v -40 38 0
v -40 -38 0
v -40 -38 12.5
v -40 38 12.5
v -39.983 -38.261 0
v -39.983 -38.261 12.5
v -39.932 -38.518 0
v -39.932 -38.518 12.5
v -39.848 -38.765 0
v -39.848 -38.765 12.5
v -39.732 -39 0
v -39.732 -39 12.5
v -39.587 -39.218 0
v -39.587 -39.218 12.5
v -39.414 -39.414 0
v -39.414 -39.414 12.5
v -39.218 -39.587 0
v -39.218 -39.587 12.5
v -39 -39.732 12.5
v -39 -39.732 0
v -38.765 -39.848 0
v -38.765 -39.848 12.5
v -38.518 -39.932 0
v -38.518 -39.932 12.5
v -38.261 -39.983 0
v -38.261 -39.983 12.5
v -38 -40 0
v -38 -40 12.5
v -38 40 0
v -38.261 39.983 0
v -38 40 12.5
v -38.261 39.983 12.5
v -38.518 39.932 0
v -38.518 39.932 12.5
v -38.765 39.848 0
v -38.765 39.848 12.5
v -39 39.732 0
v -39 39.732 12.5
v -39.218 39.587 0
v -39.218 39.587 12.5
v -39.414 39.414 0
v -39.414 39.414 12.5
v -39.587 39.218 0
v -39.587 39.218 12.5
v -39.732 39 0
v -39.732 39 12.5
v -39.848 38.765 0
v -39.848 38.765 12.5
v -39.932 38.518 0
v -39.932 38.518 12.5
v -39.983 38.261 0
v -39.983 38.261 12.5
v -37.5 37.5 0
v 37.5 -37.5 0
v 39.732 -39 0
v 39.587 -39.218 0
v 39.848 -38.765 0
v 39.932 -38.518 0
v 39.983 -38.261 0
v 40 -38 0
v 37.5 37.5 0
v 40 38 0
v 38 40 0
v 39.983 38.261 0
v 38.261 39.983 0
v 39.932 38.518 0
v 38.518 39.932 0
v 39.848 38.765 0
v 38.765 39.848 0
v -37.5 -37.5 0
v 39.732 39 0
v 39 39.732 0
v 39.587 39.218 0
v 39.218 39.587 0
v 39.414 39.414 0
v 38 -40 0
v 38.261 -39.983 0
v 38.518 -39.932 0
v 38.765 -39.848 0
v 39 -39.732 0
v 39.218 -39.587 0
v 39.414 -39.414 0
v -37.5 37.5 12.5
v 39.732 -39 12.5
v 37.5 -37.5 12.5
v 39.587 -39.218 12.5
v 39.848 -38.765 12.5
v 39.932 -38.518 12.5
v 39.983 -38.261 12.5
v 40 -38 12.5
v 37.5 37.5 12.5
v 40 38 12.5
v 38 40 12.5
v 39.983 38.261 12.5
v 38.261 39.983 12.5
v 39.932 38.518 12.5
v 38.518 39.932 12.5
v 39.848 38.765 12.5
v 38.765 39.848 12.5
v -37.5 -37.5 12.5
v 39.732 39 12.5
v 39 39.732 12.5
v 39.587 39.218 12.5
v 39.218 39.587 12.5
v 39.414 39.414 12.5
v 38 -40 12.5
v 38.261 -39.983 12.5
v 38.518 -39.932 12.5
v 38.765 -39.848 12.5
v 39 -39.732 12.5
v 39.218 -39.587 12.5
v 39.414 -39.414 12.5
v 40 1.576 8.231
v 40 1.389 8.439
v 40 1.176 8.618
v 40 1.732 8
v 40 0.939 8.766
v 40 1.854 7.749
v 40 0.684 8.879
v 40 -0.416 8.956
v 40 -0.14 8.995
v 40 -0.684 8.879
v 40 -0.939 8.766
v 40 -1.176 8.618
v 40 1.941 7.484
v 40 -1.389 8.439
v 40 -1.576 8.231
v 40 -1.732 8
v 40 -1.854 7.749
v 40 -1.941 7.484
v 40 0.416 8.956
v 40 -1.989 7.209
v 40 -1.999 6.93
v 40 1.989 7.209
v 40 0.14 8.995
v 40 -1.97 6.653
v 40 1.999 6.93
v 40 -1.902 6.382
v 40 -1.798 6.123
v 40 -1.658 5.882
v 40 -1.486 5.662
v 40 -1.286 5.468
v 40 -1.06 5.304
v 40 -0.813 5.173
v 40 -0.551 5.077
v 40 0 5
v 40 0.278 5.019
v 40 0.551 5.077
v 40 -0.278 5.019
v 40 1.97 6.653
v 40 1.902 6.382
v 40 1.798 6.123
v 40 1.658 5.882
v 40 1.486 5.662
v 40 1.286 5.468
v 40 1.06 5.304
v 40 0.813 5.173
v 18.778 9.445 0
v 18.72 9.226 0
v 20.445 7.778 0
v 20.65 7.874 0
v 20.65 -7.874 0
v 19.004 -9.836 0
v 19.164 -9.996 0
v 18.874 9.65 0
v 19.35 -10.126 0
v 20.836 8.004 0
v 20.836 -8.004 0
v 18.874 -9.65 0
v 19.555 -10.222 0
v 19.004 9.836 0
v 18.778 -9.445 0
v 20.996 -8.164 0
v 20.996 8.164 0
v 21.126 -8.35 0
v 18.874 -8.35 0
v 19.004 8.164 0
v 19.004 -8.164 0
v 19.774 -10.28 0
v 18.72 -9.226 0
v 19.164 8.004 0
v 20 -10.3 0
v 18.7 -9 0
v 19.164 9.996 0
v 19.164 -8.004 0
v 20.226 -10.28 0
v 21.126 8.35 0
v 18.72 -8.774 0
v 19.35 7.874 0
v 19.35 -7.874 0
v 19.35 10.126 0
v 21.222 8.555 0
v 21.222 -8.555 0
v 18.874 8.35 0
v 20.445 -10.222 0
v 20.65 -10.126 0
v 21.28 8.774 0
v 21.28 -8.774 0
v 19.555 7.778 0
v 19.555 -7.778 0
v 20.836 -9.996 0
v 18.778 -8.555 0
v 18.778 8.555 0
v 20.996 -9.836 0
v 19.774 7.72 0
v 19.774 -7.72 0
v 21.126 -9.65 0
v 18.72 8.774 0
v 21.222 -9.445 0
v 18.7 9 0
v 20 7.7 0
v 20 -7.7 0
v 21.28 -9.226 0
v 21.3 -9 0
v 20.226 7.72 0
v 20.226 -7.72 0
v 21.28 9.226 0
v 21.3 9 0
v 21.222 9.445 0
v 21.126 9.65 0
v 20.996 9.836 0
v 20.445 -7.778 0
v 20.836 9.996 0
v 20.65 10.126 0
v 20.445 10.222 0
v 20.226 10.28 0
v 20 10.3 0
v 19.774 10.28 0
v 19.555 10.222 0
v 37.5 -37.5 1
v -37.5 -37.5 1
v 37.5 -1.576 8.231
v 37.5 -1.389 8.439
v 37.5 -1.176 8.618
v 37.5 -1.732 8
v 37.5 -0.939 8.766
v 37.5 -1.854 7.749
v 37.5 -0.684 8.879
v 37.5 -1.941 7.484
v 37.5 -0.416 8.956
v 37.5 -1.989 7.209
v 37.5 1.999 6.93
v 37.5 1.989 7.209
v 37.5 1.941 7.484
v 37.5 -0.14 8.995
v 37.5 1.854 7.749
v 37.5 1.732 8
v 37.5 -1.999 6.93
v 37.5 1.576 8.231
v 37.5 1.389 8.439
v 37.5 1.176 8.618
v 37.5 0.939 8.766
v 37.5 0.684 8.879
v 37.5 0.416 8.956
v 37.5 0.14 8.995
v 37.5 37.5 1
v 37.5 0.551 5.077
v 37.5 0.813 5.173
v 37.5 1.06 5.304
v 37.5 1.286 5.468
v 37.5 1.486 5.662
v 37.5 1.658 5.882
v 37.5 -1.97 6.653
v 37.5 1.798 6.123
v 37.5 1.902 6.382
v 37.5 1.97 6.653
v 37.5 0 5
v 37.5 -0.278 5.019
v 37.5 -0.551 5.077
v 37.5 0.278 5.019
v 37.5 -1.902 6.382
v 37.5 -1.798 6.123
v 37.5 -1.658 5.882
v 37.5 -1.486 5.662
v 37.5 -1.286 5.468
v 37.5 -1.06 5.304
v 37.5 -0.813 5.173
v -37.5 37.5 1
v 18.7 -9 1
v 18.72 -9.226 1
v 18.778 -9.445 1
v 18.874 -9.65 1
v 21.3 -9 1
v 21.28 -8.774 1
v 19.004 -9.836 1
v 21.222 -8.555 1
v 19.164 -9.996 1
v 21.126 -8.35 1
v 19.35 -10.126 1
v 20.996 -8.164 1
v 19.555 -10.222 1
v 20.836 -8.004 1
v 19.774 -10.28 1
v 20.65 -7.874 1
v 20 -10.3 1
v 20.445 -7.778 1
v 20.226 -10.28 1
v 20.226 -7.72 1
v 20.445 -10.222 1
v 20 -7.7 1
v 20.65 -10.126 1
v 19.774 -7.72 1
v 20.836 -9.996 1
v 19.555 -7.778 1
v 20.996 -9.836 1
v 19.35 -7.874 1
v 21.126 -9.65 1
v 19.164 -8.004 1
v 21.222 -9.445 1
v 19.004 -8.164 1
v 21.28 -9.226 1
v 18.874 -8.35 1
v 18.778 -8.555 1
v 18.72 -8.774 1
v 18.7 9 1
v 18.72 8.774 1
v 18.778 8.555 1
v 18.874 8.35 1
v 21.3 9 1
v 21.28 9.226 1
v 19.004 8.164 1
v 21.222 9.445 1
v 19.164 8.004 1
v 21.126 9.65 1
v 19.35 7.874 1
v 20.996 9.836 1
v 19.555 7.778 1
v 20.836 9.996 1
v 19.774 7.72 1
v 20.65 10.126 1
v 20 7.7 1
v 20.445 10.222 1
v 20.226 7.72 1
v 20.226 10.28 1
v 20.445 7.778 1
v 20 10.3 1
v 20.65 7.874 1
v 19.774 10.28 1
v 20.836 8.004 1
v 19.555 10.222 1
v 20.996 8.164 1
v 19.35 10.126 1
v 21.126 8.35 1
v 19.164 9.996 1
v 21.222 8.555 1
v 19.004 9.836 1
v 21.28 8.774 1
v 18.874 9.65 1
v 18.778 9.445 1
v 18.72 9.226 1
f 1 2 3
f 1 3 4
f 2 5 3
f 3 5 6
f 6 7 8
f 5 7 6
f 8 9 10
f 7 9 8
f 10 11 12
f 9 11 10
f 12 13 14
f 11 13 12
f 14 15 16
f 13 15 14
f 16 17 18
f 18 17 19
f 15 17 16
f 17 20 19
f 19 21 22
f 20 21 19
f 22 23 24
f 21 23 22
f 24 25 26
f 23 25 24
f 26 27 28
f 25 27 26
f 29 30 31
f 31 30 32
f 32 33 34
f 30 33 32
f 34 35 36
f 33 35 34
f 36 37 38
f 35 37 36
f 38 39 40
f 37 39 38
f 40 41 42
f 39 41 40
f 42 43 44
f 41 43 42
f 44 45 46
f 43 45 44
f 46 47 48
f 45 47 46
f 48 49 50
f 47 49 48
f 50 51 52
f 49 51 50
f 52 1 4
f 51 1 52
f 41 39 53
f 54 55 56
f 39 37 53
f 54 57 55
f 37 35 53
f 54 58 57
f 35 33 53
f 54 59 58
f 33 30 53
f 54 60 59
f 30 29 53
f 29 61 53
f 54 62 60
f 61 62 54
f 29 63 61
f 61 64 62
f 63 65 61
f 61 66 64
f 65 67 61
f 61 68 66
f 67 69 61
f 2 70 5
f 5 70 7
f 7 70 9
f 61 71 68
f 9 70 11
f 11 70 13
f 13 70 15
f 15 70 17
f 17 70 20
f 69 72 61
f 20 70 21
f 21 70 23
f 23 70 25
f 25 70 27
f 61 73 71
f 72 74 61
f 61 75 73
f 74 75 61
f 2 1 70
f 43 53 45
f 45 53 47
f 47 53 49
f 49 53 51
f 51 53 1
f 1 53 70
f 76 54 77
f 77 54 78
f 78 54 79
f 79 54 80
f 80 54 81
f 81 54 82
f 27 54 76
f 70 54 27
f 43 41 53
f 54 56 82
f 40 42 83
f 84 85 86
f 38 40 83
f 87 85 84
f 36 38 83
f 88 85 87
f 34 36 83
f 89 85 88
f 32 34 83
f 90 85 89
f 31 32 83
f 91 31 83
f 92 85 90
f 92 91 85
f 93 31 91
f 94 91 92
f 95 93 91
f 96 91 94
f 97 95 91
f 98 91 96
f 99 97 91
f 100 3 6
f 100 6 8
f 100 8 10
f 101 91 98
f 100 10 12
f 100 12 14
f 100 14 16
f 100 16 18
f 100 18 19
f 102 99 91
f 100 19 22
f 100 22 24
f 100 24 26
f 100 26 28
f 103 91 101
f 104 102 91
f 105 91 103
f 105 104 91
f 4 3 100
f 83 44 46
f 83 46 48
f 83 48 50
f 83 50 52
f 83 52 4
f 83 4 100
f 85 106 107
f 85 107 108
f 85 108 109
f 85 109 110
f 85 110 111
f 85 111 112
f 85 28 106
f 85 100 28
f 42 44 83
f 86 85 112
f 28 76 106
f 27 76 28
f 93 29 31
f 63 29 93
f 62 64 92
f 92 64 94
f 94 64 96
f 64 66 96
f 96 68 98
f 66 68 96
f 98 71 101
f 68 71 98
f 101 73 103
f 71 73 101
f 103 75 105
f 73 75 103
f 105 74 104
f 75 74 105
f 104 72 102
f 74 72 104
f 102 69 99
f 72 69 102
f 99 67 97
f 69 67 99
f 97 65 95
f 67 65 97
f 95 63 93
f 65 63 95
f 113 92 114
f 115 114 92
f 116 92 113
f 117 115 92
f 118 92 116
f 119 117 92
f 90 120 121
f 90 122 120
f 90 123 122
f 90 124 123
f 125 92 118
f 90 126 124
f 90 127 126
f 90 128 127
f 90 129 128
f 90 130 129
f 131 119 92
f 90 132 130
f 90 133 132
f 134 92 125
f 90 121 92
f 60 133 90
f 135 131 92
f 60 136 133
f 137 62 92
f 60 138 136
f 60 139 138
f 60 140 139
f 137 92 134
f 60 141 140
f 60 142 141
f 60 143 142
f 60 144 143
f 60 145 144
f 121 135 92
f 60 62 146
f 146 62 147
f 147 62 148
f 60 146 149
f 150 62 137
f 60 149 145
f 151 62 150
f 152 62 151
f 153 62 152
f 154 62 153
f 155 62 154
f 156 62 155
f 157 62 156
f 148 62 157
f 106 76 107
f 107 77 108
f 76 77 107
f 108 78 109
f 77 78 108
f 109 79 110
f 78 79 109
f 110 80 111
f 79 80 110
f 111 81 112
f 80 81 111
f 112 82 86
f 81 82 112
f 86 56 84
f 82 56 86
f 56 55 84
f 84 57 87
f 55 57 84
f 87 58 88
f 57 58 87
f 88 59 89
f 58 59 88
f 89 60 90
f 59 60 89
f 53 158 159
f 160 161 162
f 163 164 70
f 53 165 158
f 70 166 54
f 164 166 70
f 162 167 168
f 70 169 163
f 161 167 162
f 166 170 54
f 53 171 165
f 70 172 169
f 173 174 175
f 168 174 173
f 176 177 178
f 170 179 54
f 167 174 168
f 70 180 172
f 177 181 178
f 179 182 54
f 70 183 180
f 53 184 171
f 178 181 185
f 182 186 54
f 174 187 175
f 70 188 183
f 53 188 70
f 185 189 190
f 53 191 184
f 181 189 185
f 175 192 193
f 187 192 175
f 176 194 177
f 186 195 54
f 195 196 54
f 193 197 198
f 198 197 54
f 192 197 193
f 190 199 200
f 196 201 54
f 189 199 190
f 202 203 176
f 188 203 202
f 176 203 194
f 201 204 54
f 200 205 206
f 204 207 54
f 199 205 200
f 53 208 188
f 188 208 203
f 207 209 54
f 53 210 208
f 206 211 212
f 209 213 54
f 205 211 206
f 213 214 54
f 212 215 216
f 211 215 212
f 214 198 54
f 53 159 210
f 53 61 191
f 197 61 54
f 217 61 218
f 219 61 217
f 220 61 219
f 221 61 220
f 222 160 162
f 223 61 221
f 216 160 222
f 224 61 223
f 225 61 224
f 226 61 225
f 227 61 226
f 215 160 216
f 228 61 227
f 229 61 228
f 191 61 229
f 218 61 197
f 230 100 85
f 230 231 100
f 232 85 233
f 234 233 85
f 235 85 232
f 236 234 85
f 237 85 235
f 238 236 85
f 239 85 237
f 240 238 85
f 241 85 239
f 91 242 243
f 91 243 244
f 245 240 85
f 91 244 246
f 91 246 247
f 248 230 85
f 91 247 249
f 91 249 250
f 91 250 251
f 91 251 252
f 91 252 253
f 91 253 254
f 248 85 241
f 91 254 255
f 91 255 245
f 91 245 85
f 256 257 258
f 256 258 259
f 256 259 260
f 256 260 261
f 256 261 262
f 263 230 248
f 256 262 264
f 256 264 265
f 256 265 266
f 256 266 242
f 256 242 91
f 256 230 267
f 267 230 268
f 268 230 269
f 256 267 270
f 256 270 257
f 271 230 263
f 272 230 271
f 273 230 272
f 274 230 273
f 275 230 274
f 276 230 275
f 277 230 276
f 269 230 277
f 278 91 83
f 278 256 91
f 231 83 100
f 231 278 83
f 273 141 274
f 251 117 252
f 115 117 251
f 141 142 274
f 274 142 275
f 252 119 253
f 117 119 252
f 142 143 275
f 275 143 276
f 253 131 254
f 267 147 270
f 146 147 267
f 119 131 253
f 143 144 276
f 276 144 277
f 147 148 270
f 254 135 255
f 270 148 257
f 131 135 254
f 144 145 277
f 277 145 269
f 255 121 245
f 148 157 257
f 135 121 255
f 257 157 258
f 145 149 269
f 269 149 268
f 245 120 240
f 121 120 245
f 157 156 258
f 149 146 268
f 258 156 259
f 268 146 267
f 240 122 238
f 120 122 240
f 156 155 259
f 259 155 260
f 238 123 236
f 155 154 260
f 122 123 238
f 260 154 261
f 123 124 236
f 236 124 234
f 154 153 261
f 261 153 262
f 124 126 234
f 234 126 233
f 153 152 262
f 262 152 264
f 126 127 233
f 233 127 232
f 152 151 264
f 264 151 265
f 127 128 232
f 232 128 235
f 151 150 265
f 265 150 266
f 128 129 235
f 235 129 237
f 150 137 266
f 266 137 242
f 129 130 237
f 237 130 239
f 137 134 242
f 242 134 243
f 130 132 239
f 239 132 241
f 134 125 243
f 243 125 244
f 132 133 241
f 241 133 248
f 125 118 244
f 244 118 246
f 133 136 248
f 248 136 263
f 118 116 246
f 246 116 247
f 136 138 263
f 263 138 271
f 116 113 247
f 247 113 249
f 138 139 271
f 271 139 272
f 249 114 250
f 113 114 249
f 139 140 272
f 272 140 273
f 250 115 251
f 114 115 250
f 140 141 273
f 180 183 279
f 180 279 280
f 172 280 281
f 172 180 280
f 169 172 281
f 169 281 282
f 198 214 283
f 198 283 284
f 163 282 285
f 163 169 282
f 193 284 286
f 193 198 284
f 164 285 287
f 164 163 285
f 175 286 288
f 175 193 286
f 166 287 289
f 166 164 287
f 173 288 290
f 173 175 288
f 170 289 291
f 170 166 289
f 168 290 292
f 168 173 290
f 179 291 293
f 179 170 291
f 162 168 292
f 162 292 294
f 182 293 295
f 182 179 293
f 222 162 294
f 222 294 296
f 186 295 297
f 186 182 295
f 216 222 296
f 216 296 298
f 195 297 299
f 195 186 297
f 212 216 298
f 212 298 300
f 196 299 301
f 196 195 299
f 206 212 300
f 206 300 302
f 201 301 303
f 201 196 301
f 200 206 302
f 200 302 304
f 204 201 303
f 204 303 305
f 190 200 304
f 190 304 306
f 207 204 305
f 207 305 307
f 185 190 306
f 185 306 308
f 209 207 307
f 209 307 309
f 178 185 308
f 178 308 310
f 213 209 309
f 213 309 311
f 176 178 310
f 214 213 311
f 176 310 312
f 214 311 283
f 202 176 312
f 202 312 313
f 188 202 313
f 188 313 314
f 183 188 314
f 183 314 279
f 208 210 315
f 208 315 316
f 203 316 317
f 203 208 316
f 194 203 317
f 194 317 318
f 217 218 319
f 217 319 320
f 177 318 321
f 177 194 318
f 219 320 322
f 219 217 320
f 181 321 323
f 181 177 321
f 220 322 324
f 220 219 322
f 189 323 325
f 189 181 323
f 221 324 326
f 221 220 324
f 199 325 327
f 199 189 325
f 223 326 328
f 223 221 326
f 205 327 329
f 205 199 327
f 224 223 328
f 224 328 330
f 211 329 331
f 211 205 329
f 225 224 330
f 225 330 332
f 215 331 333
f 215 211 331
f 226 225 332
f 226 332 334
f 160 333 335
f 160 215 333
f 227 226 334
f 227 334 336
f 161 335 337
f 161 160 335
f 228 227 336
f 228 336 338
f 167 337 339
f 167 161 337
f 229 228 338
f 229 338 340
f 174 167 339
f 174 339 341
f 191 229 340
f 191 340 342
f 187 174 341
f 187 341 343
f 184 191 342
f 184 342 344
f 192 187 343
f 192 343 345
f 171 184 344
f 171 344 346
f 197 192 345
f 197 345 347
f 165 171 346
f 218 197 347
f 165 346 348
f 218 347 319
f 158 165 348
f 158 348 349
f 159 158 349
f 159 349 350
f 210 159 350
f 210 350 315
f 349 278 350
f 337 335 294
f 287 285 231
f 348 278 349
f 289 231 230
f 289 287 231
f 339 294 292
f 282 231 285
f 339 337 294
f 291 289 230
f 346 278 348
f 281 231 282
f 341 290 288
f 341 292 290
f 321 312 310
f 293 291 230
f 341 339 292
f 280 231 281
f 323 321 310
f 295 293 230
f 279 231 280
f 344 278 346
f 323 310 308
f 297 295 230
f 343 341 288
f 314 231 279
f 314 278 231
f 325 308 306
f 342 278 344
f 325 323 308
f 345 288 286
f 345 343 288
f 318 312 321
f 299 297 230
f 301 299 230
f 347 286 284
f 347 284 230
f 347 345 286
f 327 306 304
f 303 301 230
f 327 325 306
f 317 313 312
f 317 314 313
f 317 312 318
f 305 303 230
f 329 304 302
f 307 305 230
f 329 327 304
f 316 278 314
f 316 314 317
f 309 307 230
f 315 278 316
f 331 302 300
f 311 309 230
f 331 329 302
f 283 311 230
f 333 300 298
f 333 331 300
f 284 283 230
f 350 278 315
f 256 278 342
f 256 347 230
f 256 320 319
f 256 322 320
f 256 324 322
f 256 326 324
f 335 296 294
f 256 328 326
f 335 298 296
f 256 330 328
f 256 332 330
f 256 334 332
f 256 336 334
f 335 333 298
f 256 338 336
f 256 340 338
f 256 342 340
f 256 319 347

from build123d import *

# Parameters (mm, degrees)
CYLINDER001_R     = 2
CYLINDER001_DEPTH = 10
SKETCH005_W       = 75
SKETCH005_H       = 75
SKETCH005_R       = 1.3
EXTRUDE005_DEPTH  = 1
SKETCH004_W       = 75
SKETCH004_H       = 75
EXTRUDE004_DEPTH  = 12.5


with BuildPart() as bohrung_solar_wanne:
    # Cylinder001 → Cylinder001 (new body)
    with BuildSketch(Plane(origin=(35, 0, 7), x_dir=(0, 0, -1), z_dir=(1, 0, 0))):
        Circle(CYLINDER001_R)
    extrude(amount=CYLINDER001_DEPTH)


with BuildPart() as solar_rahmen_boden:
    # Sketch005 → Extrude005 (new body)
    with BuildSketch(Plane.XY):
        Rectangle(SKETCH005_W, SKETCH005_H)
        with Locations((20, 9)):
            Circle(SKETCH005_R, mode=Mode.SUBTRACT)
        with Locations((20, -9)):
            Circle(SKETCH005_R, mode=Mode.SUBTRACT)
    extrude(amount=EXTRUDE005_DEPTH)


with BuildPart() as solar_wanne:
    # Sketch004 → Extrude004 (new body)
    with BuildSketch(Plane.XY):
        with BuildLine():
            Line((-38, 40), (38, 40))
            ThreePointArc((40, 38), (39.414214, 39.414214), (38, 40))
            Line((40, 38), (40, -38))
            ThreePointArc((38, -40), (39.414214, -39.414214), (40, -38))
            Line((38, -40), (-38, -40))
            ThreePointArc((-40, -38), (-39.414214, -39.414214), (-38, -40))
            Line((-40, -38), (-40, 38))
            ThreePointArc((-38, 40), (-39.414214, 39.414214), (-40, 38))
        make_face()
        Rectangle(SKETCH004_W, SKETCH004_H, mode=Mode.SUBTRACT)
    extrude(amount=EXTRUDE004_DEPTH)

    # Fusion002: union solar_rahmen_boden
    add(solar_rahmen_boden.part)

    # Cut001: cut bohrung_solar_wanne
    add(bohrung_solar_wanne.part, mode=Mode.SUBTRACT)


solid = solar_wanne.part
